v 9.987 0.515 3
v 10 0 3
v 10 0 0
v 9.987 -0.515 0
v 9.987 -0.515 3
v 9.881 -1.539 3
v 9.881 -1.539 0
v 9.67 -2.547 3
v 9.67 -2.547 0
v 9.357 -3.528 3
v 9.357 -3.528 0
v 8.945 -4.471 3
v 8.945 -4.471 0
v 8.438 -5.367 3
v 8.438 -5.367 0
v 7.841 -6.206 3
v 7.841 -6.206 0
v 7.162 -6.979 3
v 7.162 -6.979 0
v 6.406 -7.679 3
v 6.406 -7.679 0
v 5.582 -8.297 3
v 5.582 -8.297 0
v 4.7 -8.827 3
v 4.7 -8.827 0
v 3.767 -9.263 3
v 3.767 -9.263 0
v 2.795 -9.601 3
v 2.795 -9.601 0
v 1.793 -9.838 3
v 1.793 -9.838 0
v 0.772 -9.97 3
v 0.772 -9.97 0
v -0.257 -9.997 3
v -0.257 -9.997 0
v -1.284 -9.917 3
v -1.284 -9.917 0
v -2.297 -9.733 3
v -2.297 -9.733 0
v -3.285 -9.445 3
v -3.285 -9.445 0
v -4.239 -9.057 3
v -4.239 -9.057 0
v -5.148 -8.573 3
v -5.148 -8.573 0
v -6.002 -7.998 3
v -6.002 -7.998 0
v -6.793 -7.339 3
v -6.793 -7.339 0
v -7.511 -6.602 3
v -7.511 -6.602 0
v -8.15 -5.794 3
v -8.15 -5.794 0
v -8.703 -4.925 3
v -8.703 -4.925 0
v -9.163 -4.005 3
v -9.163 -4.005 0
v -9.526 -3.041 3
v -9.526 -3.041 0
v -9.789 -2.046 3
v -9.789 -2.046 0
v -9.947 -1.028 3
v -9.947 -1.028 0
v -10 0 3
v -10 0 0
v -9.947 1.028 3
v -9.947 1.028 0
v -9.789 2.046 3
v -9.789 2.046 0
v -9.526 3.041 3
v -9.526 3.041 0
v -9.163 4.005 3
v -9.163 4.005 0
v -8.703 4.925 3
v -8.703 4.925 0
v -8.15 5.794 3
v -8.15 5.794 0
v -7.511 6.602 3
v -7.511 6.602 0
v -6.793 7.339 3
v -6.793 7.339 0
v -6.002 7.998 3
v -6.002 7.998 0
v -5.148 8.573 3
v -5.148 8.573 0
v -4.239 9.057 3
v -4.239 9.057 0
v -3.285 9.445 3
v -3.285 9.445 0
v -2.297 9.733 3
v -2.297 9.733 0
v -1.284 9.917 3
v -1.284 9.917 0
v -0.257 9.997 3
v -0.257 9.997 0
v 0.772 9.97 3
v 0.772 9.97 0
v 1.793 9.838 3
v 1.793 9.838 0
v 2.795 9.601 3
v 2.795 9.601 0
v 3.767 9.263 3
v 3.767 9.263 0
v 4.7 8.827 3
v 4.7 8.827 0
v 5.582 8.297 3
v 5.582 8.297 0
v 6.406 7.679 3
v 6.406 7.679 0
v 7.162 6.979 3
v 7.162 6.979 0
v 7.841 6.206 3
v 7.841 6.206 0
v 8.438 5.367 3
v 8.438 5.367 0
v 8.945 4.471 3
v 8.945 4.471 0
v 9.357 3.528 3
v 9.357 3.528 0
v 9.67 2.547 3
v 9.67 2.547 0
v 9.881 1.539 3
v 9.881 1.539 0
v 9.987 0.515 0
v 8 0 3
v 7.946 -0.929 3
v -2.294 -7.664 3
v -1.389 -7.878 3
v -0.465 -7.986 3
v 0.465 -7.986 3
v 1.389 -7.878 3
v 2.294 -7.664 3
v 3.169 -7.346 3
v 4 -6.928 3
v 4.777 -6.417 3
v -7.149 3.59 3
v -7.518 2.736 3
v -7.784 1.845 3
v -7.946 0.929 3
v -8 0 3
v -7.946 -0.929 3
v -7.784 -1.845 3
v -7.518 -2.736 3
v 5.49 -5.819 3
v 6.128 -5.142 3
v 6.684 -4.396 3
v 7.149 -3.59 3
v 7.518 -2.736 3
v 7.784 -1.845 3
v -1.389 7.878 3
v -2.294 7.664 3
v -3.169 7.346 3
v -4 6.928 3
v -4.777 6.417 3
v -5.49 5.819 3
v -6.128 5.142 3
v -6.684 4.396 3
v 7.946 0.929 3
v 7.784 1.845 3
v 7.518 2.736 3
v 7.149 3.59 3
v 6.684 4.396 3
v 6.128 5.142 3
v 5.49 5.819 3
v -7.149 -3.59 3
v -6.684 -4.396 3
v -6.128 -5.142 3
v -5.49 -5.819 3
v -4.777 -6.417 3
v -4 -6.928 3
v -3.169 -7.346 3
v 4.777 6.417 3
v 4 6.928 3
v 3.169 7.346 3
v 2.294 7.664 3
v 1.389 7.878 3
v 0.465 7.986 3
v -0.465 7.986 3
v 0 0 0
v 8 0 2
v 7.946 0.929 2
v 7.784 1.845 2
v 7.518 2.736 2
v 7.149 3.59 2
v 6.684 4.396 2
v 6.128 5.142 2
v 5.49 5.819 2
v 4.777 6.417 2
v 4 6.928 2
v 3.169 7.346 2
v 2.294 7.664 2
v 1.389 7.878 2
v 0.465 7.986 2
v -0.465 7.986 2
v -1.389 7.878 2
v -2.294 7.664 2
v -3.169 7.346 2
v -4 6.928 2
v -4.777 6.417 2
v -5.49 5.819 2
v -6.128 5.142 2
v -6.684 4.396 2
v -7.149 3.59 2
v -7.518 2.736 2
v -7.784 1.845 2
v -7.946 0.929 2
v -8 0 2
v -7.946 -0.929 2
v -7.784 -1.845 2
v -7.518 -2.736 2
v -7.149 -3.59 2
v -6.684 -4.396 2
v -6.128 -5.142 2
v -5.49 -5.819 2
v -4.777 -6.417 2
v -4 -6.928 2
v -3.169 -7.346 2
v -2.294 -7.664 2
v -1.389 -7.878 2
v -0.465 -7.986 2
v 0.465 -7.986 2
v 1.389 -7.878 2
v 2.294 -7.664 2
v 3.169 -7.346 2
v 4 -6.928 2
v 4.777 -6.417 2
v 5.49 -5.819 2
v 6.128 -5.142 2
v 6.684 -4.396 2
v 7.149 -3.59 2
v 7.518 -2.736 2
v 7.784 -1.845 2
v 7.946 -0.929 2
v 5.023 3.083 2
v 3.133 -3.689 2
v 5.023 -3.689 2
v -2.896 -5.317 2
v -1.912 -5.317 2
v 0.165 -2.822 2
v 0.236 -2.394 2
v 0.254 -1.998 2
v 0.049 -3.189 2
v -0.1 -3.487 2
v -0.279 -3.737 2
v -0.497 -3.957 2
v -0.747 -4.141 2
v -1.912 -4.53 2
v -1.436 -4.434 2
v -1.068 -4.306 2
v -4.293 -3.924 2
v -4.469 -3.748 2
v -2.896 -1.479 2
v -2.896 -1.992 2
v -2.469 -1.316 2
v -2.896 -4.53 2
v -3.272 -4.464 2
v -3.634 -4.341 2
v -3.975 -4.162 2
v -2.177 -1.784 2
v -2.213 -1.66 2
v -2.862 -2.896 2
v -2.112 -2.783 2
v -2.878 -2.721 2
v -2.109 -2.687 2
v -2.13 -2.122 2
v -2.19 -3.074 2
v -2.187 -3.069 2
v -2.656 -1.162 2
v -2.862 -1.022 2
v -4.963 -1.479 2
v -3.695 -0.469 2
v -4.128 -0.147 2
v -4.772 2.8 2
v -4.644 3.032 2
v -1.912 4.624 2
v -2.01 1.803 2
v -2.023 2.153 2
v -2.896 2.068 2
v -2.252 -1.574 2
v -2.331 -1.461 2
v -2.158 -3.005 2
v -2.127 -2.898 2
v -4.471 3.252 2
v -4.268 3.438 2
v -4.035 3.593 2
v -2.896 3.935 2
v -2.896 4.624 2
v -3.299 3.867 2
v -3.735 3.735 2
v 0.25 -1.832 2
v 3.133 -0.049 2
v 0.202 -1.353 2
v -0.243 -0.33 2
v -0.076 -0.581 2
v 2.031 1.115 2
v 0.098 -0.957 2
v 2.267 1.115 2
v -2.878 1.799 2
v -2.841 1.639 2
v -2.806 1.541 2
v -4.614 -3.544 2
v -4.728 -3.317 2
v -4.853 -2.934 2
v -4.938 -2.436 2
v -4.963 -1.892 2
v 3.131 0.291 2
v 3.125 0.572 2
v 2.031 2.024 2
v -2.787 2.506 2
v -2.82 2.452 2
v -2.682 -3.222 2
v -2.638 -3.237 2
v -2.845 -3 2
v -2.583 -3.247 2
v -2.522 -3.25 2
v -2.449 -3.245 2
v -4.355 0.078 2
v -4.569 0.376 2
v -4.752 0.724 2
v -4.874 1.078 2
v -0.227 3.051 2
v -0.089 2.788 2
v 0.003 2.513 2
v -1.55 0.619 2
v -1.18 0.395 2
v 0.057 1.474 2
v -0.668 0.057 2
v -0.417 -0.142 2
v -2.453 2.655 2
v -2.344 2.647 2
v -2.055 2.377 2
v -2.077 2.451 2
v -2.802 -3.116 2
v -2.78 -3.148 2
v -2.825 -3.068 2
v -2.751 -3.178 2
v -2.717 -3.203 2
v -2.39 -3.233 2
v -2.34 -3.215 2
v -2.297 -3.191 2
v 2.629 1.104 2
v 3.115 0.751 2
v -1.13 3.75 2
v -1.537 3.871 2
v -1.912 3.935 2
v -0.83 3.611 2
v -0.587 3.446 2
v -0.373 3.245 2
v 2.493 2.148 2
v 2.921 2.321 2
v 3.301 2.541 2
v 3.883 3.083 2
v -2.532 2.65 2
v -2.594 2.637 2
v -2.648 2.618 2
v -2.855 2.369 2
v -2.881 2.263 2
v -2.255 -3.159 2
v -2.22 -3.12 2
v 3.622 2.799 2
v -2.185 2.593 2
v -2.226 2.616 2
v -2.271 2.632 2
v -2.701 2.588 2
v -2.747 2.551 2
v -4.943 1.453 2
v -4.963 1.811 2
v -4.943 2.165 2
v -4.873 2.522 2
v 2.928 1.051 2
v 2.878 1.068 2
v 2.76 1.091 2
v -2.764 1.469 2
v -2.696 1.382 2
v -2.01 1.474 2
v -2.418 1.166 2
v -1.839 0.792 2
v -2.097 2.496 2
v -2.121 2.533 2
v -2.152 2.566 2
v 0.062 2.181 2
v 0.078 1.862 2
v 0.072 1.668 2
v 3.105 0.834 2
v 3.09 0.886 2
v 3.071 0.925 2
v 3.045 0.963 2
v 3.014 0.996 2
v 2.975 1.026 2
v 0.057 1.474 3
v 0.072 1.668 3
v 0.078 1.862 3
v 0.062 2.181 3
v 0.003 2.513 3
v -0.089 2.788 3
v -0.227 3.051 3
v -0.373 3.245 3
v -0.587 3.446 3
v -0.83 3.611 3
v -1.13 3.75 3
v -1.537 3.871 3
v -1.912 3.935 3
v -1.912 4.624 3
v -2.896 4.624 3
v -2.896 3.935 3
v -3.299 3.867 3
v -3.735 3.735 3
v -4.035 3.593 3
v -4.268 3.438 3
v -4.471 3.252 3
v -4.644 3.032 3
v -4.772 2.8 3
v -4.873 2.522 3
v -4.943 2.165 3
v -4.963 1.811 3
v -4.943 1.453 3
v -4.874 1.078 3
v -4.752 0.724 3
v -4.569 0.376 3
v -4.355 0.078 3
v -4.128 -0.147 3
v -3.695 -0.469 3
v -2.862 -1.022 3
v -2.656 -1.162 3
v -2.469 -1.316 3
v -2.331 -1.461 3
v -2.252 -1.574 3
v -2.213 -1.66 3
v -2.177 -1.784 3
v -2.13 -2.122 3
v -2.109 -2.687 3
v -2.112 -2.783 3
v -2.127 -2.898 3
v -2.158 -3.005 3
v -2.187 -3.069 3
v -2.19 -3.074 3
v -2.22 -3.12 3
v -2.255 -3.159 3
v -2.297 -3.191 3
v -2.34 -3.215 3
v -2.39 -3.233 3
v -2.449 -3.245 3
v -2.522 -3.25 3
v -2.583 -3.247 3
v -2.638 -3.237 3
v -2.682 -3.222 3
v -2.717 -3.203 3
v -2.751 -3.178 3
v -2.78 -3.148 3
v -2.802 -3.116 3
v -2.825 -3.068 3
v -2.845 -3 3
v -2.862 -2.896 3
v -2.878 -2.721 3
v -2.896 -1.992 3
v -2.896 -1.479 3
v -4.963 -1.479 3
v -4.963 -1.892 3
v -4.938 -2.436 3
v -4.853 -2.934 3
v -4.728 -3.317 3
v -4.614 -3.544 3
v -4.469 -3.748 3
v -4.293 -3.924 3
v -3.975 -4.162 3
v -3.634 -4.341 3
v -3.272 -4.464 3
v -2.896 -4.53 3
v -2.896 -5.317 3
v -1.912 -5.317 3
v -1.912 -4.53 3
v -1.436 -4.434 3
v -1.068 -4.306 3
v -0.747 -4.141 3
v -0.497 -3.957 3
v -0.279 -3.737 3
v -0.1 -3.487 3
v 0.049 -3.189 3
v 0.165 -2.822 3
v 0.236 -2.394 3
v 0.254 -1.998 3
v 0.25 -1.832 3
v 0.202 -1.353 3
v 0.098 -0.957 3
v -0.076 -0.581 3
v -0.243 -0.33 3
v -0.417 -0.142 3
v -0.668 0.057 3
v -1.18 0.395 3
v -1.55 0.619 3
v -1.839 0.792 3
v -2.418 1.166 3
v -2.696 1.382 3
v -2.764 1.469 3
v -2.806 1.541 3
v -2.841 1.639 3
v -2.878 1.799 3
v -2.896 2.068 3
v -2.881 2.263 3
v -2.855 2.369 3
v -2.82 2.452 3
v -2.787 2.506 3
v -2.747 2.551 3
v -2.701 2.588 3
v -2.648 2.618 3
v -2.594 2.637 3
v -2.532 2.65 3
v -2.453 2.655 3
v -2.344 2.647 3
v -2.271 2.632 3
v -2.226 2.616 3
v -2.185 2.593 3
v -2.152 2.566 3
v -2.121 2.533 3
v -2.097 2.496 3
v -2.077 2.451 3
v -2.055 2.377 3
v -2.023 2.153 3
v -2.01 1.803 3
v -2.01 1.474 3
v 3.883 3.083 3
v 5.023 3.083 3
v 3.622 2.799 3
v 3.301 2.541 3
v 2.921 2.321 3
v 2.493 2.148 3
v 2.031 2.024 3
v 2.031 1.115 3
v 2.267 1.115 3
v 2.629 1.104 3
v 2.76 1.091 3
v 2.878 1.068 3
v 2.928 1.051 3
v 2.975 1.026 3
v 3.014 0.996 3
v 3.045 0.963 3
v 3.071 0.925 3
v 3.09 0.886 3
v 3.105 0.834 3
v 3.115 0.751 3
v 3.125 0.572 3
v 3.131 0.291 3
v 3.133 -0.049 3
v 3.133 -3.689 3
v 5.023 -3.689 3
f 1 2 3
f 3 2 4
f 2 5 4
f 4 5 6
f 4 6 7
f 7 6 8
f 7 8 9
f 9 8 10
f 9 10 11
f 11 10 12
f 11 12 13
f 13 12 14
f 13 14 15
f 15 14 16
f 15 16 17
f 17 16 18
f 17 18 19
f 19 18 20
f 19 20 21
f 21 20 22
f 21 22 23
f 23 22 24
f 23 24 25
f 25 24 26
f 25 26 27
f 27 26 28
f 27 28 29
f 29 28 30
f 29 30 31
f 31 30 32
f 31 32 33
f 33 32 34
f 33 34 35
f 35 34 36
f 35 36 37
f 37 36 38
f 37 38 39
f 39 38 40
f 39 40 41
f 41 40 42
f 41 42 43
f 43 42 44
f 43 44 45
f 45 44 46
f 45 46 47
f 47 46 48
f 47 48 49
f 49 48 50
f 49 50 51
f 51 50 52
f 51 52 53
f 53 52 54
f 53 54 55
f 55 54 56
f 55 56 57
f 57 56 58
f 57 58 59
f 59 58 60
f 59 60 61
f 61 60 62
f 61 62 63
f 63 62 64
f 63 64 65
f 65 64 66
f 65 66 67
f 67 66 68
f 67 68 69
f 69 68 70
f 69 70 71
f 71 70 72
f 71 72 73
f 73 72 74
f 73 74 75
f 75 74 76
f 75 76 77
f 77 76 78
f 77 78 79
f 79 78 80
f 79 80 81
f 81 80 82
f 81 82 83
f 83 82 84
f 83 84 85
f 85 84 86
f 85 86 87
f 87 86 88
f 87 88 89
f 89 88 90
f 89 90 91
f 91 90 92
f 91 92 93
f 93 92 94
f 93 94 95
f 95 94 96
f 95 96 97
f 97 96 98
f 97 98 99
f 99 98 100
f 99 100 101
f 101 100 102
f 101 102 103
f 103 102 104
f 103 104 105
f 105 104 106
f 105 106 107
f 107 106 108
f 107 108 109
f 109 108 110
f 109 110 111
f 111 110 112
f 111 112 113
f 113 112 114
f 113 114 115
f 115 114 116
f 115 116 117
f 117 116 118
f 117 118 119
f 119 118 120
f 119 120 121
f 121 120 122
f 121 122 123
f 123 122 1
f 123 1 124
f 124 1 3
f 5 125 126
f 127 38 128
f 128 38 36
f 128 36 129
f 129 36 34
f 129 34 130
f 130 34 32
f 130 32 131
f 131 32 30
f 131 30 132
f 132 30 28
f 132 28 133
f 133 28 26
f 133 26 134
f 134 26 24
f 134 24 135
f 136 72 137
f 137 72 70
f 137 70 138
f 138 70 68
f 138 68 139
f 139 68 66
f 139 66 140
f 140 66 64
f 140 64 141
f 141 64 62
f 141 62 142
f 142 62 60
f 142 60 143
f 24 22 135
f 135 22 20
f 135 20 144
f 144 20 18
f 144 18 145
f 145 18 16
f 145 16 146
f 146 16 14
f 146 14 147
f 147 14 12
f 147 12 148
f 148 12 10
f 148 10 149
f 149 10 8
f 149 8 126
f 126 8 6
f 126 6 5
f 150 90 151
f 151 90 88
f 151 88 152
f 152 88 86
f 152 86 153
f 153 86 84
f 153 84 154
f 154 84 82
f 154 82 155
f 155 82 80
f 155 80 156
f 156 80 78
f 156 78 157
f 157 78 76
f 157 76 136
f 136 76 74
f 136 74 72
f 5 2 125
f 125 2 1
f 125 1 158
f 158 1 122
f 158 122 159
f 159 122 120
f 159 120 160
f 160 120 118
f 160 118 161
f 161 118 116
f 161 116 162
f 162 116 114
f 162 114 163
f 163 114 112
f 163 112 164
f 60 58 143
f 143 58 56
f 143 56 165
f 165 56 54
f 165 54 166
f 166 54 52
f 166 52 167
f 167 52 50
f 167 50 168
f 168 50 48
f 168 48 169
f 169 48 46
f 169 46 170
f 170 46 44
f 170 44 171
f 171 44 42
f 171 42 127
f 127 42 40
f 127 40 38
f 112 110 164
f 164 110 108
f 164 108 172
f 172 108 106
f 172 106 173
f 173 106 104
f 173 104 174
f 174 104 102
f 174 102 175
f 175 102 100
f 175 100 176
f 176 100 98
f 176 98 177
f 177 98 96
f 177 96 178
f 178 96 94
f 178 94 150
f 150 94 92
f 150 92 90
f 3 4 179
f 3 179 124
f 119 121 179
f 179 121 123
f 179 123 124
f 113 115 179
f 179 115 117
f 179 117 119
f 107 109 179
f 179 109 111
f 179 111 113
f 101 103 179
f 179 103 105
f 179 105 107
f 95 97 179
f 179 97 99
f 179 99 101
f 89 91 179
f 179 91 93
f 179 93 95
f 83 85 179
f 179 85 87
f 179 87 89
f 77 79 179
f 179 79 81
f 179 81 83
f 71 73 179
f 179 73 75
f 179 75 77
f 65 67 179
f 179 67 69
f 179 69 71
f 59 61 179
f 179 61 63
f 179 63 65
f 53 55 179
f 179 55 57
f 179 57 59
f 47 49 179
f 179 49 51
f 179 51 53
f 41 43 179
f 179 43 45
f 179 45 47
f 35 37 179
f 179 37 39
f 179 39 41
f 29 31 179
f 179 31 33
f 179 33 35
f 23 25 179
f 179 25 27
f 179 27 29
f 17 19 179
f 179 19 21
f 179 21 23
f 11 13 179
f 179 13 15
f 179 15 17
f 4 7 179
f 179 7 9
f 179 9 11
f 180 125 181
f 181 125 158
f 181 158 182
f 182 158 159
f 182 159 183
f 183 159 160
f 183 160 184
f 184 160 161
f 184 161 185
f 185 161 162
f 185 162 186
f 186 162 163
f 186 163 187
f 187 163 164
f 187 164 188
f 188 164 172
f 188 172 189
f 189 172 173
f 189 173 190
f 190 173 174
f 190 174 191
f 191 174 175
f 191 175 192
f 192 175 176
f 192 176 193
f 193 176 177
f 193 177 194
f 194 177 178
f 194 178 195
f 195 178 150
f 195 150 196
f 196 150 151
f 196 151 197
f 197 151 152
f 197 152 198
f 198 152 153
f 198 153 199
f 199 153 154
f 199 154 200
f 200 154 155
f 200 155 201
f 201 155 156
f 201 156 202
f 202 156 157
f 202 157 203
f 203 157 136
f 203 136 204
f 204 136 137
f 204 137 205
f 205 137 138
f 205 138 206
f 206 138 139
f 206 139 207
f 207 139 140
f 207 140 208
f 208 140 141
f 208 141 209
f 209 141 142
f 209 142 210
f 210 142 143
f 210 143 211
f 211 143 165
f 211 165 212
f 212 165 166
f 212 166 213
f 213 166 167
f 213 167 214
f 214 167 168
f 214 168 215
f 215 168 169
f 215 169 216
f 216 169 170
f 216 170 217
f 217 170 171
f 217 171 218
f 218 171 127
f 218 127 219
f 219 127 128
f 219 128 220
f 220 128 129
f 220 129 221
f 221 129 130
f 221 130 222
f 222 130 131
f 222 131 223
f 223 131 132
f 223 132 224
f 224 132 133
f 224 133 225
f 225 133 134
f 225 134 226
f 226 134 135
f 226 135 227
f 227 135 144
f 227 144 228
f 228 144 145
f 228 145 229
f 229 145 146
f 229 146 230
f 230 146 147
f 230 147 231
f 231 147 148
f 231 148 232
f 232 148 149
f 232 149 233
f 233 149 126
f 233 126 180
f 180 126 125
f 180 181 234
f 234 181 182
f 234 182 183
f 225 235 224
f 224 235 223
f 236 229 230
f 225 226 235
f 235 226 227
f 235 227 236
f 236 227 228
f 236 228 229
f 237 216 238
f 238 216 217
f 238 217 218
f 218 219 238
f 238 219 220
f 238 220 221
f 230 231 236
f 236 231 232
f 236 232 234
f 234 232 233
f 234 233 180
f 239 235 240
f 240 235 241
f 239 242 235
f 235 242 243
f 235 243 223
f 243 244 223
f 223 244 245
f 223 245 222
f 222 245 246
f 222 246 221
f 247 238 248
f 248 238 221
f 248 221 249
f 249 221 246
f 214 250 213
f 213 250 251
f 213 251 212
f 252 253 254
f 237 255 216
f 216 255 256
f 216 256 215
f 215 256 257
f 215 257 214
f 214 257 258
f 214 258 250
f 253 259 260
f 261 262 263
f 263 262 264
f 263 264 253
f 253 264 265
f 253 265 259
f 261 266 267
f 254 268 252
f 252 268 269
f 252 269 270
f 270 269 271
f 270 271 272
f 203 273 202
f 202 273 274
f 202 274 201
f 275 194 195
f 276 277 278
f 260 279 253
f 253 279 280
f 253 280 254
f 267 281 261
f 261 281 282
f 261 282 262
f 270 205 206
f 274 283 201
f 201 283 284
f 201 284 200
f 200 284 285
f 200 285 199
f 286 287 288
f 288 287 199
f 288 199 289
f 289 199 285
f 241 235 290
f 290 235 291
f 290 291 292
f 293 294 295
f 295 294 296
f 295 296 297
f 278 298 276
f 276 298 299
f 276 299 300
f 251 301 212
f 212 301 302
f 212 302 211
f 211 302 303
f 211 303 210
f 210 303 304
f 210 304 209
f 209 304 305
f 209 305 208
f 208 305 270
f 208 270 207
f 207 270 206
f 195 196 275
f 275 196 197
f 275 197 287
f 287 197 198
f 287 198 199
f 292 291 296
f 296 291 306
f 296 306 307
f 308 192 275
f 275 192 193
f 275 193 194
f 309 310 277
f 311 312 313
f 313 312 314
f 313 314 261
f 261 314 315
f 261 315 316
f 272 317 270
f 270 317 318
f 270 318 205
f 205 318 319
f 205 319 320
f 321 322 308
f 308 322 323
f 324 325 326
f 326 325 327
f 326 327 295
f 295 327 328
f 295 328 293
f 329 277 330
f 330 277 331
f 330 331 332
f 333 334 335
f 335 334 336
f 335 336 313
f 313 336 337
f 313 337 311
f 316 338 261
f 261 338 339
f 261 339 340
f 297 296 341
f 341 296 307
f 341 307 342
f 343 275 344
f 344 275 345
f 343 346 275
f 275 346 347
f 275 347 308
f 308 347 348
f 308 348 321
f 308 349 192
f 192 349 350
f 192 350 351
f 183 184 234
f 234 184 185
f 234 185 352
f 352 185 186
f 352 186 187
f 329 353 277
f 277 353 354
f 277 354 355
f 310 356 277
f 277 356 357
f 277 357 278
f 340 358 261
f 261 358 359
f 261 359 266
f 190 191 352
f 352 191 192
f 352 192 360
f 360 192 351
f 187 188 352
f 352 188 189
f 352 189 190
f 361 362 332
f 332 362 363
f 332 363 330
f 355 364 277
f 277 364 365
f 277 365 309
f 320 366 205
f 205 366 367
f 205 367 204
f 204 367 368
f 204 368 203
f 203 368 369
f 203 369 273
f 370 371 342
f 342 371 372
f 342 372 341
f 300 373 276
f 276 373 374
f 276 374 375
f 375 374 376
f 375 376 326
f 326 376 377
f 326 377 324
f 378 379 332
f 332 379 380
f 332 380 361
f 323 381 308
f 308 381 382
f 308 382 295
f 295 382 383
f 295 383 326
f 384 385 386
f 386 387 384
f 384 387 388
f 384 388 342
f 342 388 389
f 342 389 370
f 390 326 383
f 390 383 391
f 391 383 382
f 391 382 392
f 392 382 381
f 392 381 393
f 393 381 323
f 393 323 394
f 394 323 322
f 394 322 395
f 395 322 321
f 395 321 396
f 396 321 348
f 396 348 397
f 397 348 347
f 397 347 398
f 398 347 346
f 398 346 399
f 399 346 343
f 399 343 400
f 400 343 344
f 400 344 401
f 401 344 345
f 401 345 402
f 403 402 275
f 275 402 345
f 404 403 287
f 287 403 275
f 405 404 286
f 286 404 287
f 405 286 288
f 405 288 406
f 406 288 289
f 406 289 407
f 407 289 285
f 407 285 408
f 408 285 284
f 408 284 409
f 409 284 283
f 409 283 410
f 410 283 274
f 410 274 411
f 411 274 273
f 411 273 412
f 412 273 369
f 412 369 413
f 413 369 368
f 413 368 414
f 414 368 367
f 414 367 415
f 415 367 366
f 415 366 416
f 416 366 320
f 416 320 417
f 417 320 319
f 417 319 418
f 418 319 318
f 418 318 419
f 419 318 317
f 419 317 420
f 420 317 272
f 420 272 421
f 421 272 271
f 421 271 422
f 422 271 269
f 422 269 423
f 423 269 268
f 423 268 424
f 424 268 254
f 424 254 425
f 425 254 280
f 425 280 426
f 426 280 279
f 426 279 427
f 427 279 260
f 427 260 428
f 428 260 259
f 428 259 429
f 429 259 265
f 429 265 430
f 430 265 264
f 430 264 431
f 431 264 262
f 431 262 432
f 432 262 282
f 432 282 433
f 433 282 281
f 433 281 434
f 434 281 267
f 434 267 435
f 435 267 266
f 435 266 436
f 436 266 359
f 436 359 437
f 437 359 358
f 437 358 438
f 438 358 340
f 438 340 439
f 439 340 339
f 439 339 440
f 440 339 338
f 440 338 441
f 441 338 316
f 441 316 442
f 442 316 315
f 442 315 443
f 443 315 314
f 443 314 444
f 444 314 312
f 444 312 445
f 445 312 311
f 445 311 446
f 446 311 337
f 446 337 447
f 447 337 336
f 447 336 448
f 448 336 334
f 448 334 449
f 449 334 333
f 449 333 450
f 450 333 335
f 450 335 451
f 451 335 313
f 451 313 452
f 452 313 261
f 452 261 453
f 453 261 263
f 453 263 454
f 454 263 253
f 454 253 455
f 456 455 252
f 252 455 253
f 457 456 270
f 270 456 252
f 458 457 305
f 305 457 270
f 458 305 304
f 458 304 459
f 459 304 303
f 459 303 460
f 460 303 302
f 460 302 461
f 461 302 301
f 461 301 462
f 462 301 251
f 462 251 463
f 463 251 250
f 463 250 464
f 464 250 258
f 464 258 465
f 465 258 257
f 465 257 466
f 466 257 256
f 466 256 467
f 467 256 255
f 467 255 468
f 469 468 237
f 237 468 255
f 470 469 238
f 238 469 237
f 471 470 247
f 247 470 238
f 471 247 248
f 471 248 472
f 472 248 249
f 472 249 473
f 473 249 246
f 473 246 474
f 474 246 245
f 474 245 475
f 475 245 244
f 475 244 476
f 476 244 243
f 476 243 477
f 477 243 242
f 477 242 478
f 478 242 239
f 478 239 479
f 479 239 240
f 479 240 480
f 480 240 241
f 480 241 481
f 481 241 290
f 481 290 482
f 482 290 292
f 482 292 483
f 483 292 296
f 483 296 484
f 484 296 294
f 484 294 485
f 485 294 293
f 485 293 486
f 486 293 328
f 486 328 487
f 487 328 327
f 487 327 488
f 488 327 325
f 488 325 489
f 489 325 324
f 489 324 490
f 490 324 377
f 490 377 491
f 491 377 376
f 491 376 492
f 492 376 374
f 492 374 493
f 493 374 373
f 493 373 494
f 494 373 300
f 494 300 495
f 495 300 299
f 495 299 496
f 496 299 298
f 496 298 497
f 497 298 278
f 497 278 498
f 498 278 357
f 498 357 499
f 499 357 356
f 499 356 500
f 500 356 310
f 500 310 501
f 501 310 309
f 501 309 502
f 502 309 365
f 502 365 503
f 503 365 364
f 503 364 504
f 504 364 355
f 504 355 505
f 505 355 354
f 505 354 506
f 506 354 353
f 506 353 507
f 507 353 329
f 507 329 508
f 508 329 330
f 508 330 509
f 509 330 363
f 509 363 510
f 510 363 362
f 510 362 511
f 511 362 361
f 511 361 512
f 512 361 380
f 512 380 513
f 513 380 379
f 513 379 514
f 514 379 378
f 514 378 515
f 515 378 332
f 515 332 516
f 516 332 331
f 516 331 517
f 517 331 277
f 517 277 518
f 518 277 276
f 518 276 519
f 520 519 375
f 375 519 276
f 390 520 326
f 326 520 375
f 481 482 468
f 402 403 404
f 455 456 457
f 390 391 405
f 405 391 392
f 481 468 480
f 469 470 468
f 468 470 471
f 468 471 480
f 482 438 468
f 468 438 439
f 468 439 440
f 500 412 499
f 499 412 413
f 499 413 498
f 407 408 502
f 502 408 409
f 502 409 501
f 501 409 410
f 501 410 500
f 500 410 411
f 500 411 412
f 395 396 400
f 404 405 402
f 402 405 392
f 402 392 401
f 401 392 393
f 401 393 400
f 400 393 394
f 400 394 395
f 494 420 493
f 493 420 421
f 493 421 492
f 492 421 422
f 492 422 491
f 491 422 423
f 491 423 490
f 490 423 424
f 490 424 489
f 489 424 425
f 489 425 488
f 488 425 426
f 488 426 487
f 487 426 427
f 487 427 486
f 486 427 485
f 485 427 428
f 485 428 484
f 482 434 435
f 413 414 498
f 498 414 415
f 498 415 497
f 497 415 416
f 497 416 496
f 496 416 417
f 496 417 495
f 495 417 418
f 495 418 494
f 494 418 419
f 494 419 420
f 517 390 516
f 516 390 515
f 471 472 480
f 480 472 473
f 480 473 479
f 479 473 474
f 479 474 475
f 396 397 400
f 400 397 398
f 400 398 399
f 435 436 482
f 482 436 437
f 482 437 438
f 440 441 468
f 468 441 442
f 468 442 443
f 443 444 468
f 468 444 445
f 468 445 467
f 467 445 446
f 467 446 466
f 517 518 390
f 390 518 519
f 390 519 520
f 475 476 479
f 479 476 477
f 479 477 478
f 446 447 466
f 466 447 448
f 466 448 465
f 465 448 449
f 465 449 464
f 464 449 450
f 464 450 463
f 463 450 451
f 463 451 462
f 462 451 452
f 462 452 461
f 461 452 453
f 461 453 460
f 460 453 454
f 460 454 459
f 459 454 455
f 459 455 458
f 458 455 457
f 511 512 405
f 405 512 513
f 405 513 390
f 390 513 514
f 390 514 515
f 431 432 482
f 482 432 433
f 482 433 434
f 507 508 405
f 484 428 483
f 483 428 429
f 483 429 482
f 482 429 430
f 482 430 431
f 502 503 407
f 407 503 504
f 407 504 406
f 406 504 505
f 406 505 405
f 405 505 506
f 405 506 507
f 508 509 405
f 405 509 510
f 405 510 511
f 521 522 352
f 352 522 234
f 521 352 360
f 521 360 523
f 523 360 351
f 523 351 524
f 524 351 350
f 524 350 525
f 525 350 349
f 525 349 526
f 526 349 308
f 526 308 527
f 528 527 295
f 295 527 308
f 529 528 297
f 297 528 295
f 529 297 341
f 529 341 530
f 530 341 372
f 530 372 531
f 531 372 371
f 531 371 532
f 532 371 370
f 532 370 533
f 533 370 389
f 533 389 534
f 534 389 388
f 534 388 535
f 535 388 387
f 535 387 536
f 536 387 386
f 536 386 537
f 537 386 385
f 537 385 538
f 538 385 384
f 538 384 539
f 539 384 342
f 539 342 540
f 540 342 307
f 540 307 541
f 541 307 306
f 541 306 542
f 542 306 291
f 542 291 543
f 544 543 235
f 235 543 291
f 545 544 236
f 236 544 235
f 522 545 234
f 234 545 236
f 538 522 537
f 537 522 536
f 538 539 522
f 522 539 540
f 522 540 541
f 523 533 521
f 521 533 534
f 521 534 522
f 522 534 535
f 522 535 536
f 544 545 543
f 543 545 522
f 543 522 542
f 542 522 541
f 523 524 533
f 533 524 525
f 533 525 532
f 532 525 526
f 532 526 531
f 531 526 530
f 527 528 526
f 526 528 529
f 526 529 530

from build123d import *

# Parameters (mm, degrees)
SKETCH_1_R          = 10
EXTRUDE_1_DEPTH     = 3
SKETCH_2_R          = 8
CUT_EXTRUDE_1_DEPTH = 1
EXTRUDE_3_DEPTH     = 1


with BuildPart() as part:
    # 草图1 → 凸台-拉伸1 (new body)
    with BuildSketch(Plane.XY):
        Circle(SKETCH_1_R)
    extrude(amount=EXTRUDE_1_DEPTH)

    # 草图2 → 切除-拉伸1 (cut)
    with BuildSketch(Plane.XY.offset(3)):
        Circle(SKETCH_2_R)
    extrude(amount=-CUT_EXTRUDE_1_DEPTH, mode=Mode.SUBTRACT)

    # 草图4 → 凸台-拉伸3 (add)
    with BuildSketch(Plane.XY.offset(2)):
        with BuildLine():
            Line((0.056762987, 1.474211792), (-2.010233509, 1.474211792))
            Line((-2.010233509, 1.474211792), (-2.010233509, 1.80333177))
            add(Edge.make_bspline(
                [(-2.010233509, 1.80333177), (-2.010714949, 1.845366066), (-2.011636853, 1.925857174), (-2.013443384, 2.040830842), (-2.021934942, 2.144355468), (-2.031073109, 2.236120108), (-2.040588927, 2.31710552), (-2.056465146, 2.385691054), (-2.072751931, 2.443681195), (-2.098421022, 2.504945758), (-2.146218174, 2.567628601), (-2.227072107, 2.622444592), (-2.333658747, 2.649566324), (-2.411001767, 2.653311278), (-2.45316133, 2.655352647)],
                knots=[0, 0, 0, 0, 1.359919446, 2.604097865, 3.718258517, 4.718210111, 5.588312068, 6.352757529, 6.992875727, 7.535071206, 8.493600252, 9.496298216, 10.635235939, 12, 12, 12, 12], degree=3))
            add(Edge.make_bspline(
                [(-2.45316133, 2.655352647), (-2.48769324, 2.653727226), (-2.553890817, 2.650611298), (-2.646642148, 2.622991559), (-2.725077805, 2.574799662), (-2.789460033, 2.508992999), (-2.837678653, 2.423435949), (-2.872664288, 2.321405275), (-2.891615661, 2.200286181), (-2.894528446, 2.114059415), (-2.89608915, 2.067858107)],
                knots=[0, 0, 0, 0, 0.988105774, 1.894196063, 2.738146432, 3.600308196, 4.502221556, 5.528881054, 6.675945596, 8, 8, 8, 8], degree=3))
            add(Edge.make_bspline(
                [(-2.89608915, 2.067858107), (-2.894449613, 1.992202619), (-2.891412238, 1.85204466), (-2.851820774, 1.660792354), (-2.795166347, 1.499557252), (-2.727751468, 1.419469509), (-2.696156454, 1.381935163)],
                knots=[0, 0, 0, 0, 1.238590262, 2.294589406, 3.200733242, 4, 4, 4, 4], degree=3))
            add(Edge.make_bspline(
                [(-2.696156454, 1.381935163), (-2.676461776, 1.363134012), (-2.630861227, 1.319602312), (-2.545176258, 1.255053383), (-2.437113188, 1.178219265), (-2.306005051, 1.088728044), (-2.150665321, 0.987994219), (-1.972415244, 0.873613916), (-1.769467583, 0.749717147), (-1.625830171, 0.664089009), (-1.550388307, 0.619115027)],
                knots=[0, 0, 0, 0, 0.473750368, 1.096909409, 1.864751644, 2.783261057, 3.860202471, 5.088360878, 6.470736284, 8, 8, 8, 8], degree=3))
            add(Edge.make_bspline(
                [(-1.550388307, 0.619115027), (-1.485198527, 0.580292401), (-1.360104373, 0.505794778), (-1.181709189, 0.396565598), (-1.019465077, 0.294906955), (-0.873253022, 0.199660286), (-0.743042002, 0.110905609), (-0.629062244, 0.029561017), (-0.531324757, -0.044462306), (-0.421492641, -0.134926314), (-0.298119069, -0.256239512), (-0.16776821, -0.425307224), (-0.049470339, -0.620618928), (0.056905891, -0.841480009), (0.147481943, -1.089394), (0.208560212, -1.367548532), (0.2478522, -1.673343211), (0.251643957, -1.887086396), (0.253619796, -1.998465357)],
                knots=[0, 0, 0, 0, 1.071987144, 2.057060554, 2.955337459, 3.77699406, 4.522318602, 5.181589955, 5.755251306, 6.254177214, 7.191438167, 8.192596657, 9.262134101, 10.412151394, 11.651634359, 12.981704702, 14.427203216, 16, 16, 16, 16], degree=3))
            add(Edge.make_bspline(
                [(0.253619796, -1.998465357), (0.252520604, -2.088771103), (0.250373462, -2.265172779), (0.222764294, -2.521443005), (0.18288396, -2.763633873), (0.12157342, -2.989934303), (0.048224142, -3.203329396), (-0.04764749, -3.399426406), (-0.155935901, -3.582886354), (-0.284918565, -3.748769407), (-0.428419819, -3.901762054), (-0.591566185, -4.036202813), (-0.768685194, -4.159846558), (-0.965671944, -4.262796907), (-1.17743885, -4.354992249), (-1.406900356, -4.429013379), (-1.652957644, -4.490181019), (-1.823878665, -4.516421874), (-1.911805105, -4.529920886)],
                knots=[0, 0, 0, 0, 1.166783885, 2.279175364, 3.328322562, 4.336159768, 5.306592857, 6.240240115, 7.152837026, 8.055466775, 8.95076907, 9.858637968, 10.783210379, 11.737857823, 12.726337121, 13.765749244, 14.850640409, 16, 16, 16, 16], degree=3))
            Line((-1.911805105, -4.529920886), (-1.911805105, -5.317348123))
            Line((-1.911805105, -5.317348123), (-2.89608915, -5.317348123))
            Line((-2.89608915, -5.317348123), (-2.89608915, -4.529920886))
            add(Edge.make_bspline(
                [(-2.89608915, -4.529920886), (-2.964444513, -4.521229842), (-3.099464254, -4.504062754), (-3.297451441, -4.460222183), (-3.489345523, -4.402463406), (-3.673272398, -4.325457939), (-3.853248014, -4.239077881), (-4.024367639, -4.13315523), (-4.188527464, -4.012378649), (-4.349076156, -3.880100488), (-4.495366504, -3.723540065), (-4.622435632, -3.53984494), (-4.72817515, -3.328806901), (-4.813652178, -3.091543394), (-4.880733234, -2.828813828), (-4.929378662, -2.540298927), (-4.958678767, -2.225151111), (-4.961577762, -2.006221367), (-4.963085646, -1.892347233)],
                knots=[0, 0, 0, 0, 0.880722716, 1.739658008, 2.589843307, 3.439548281, 4.286822195, 5.140160776, 6.008178737, 6.892018721, 7.796500557, 8.738476021, 9.73819386, 10.806244783, 11.957388676, 13.201071447, 14.544165091, 16, 16, 16, 16], degree=3))
            Line((-4.963085646, -1.892347233), (-4.963085646, -1.478640345))
            Line((-4.963085646, -1.478640345), (-2.89608915, -1.478640345))
            Line((-2.89608915, -1.478640345), (-2.89608915, -1.992313581))
            add(Edge.make_bspline(
                [(-2.89608915, -1.992313581), (-2.895704026, -2.059471516), (-2.894971956, -2.187129782), (-2.891957149, -2.369133466), (-2.88733937, -2.53113795), (-2.881948967, -2.673237924), (-2.87257906, -2.794763684), (-2.861999559, -2.896309089), (-2.850782323, -2.978298671), (-2.831771987, -3.057698517), (-2.796329914, -3.13720338), (-2.724733914, -3.204634246), (-2.630260737, -3.245729545), (-2.560258212, -3.248728448), (-2.522368802, -3.250351627)],
                knots=[0, 0, 0, 0, 1.657418857, 3.150531957, 4.492147425, 5.657201955, 6.659563487, 7.499257938, 8.177392906, 8.69903519, 9.513866485, 10.283438363, 11.070897696, 12, 12, 12, 12], degree=3))
            add(Edge.make_bspline(
                [(-2.522368802, -3.250351627), (-2.489378542, -3.248660536), (-2.426843431, -3.245454967), (-2.339218716, -3.219229643), (-2.266135459, -3.173231759), (-2.207216552, -3.10880944), (-2.162940532, -3.026750233), (-2.13130144, -2.928258661), (-2.111154143, -2.813357435), (-2.109526388, -2.731132497), (-2.108661914, -2.687464189)],
                knots=[0, 0, 0, 0, 0.994883323, 1.88586392, 2.727487039, 3.570816153, 4.492326284, 5.520132617, 6.682983341, 8, 8, 8, 8], degree=3))
            add(Edge.make_bspline(
                [(-2.108661914, -2.687464189), (-2.108935574, -2.631069741), (-2.10946309, -2.52236181), (-2.114071505, -2.36544721), (-2.121638763, -2.220834196), (-2.132025717, -2.088463373), (-2.146270394, -1.969077806), (-2.160677831, -1.861524675), (-2.180587972, -1.767054101), (-2.204007286, -1.681855361), (-2.2351748, -1.60114895), (-2.282906179, -1.522964225), (-2.34325911, -1.442242229), (-2.419461819, -1.361342915), (-2.508937636, -1.278209236), (-2.613142538, -1.193590203), (-2.730821056, -1.105545843), (-2.817259718, -1.050516127), (-2.862254386, -1.02187103)],
                knots=[0, 0, 0, 0, 1.380366004, 2.660842346, 3.842046573, 4.924766116, 5.910024558, 6.784900421, 7.579810868, 8.270991265, 8.946735927, 9.689207242, 10.50484436, 11.410582145, 12.404987482, 13.492712756, 14.694859961, 16, 16, 16, 16], degree=3))
            add(Edge.make_bspline(
                [(-2.862254386, -1.02187103), (-2.937220205, -0.973865027), (-3.081396493, -0.881538587), (-3.286891769, -0.745807), (-3.474986034, -0.622159308), (-3.642992295, -0.505822423), (-3.79311186, -0.400793853), (-3.924056333, -0.305001794), (-4.036890963, -0.220601901), (-4.163849408, -0.119869901), (-4.304983023, 0.014315539), (-4.456319758, 0.199792286), (-4.595950479, 0.413669622), (-4.724454675, 0.652864388), (-4.833140109, 0.915678198), (-4.906897048, 1.199845959), (-4.95494887, 1.499747864), (-4.960333437, 1.705735293), (-4.963085646, 1.811021489)],
                knots=[0, 0, 0, 0, 1.144251925, 2.200656203, 3.165654651, 4.037535326, 4.827334008, 5.520628553, 6.122925727, 6.638522573, 7.603341009, 8.619197825, 9.708488222, 10.881837927, 12.105530735, 13.353920843, 14.647511608, 16, 16, 16, 16], degree=3))
            add(Edge.make_bspline(
                [(-4.963085646, 1.811021489), (-4.961832651, 1.886969132), (-4.959387355, 2.035185564), (-4.933923027, 2.250632635), (-4.894562266, 2.45413148), (-4.83767485, 2.644637628), (-4.765374936, 2.823312376), (-4.675972901, 2.98828905), (-4.570048913, 3.140778425), (-4.448675351, 3.280849467), (-4.310302398, 3.408108551), (-4.155692946, 3.521790754), (-3.985325259, 3.623865012), (-3.798953475, 3.712921544), (-3.595929506, 3.788193762), (-3.377284846, 3.850499543), (-3.14270702, 3.902314827), (-2.979857079, 3.92384636), (-2.89608915, 3.934921906)],
                knots=[0, 0, 0, 0, 1.100217239, 2.147140655, 3.139410829, 4.100827409, 5.023841391, 5.928095608, 6.81431441, 7.709642577, 8.608754423, 9.533023434, 10.486107416, 11.483039549, 12.522183369, 13.62029137, 14.775908296, 16, 16, 16, 16], degree=3))
            Line((-2.89608915, 3.934921906), (-2.89608915, 4.623920738))
            Line((-2.89608915, 4.623920738), (-1.911805105, 4.623920738))
            Line((-1.911805105, 4.623920738), (-1.911805105, 3.934921906))
            add(Edge.make_bspline(
                [(-1.911805105, 3.934921906), (-1.83113698, 3.923684787), (-1.674057582, 3.90180353), (-1.447521608, 3.852095654), (-1.236442357, 3.791447846), (-1.041243092, 3.71680636), (-0.860526928, 3.631897354), (-0.697329997, 3.531284043), (-0.5494265, 3.419578532), (-0.416662802, 3.296239572), (-0.298135254, 3.160524603), (-0.199220323, 3.009701153), (-0.111370998, 2.849607494), (-0.042910487, 2.675016965), (0.012954, 2.489539125), (0.050711945, 2.290569889), (0.074127815, 2.080216319), (0.07688497, 1.935659253), (0.0782942, 1.861773635)],
                knots=[0, 0, 0, 0, 1.217065147, 2.369905846, 3.463567771, 4.496793418, 5.490769135, 6.443602658, 7.357042595, 8.257109579, 9.148127797, 10.042894642, 10.948036131, 11.87297517, 12.840365016, 13.839761067, 14.895864502, 16, 16, 16, 16], degree=3))
            add(Edge.make_bspline(
                [(0.0782942, 1.861773635), (0.077810751, 1.837679646), (0.076740765, 1.784353921), (0.074244937, 1.695560092), (0.065389733, 1.590583694), (0.059765481, 1.514714431), (0.056762987, 1.474211792)],
                knots=[0, 0, 0, 0, 0.744858199, 1.648548241, 2.744682654, 4, 4, 4, 4], degree=3))
        make_face()
        with BuildLine():
            Line((5.023175077, 3.083267731), (5.023175077, -3.688606503))
            Line((5.023175077, -3.688606503), (3.133349709, -3.688606503))
            Line((3.133349709, -3.688606503), (3.133349709, -0.049216244))
            add(Edge.make_bspline(
                [(3.133349709, -0.049216244), (3.133593958, 0.010662586), (3.134055716, 0.123864492), (3.130999708, 0.284214806), (3.128343293, 0.425283899), (3.127055881, 0.546751118), (3.121323717, 0.64841284), (3.116976452, 0.730915963), (3.111457202, 0.794221383), (3.102291906, 0.852121983), (3.083359365, 0.90808358), (3.047418069, 0.964547564), (2.998087245, 1.01190667), (2.94587648, 1.044463224), (2.893097842, 1.065050405), (2.840089727, 1.077930703), (2.775346455, 1.090596163), (2.697463576, 1.098009477), (2.607659433, 1.105428465), (2.505139966, 1.112148942), (2.390217008, 1.113575298), (2.30942017, 1.114313637), (2.267179749, 1.11469964)],
                knots=[0, 0, 0, 0, 1.950419782, 3.687300443, 5.223822311, 6.546637084, 7.643380878, 8.540030222, 9.237904201, 9.712291202, 10.447402628, 11.144124893, 11.871548827, 12.657464658, 13.131287025, 13.711290926, 14.431812681, 15.278611421, 16.257109778, 17.367920147, 18.623954072, 20, 20, 20, 20], degree=3))
            Line((2.267179749, 1.11469964), (2.030951578, 1.11469964))
            Line((2.030951578, 1.11469964), (2.030951578, 2.023932027))
            add(Edge.make_bspline(
                [(2.030951578, 2.023932027), (2.130150393, 2.047183275), (2.324590782, 2.092758233), (2.604092231, 2.182654867), (2.864873324, 2.289383591), (3.106344693, 2.414498141), (3.329490435, 2.555636371), (3.533824466, 2.714185), (3.720026359, 2.888796928), (3.828520908, 3.018549566), (3.882635939, 3.083267731)],
                knots=[0, 0, 0, 0, 1.122506737, 2.20023443, 3.231784783, 4.224338166, 5.193566431, 6.137412817, 7.070976693, 8, 8, 8, 8], degree=3))
            Line((3.882635939, 3.083267731), (5.023175077, 3.083267731))
        make_face()
    extrude(amount=EXTRUDE_3_DEPTH)


solid = part.part
